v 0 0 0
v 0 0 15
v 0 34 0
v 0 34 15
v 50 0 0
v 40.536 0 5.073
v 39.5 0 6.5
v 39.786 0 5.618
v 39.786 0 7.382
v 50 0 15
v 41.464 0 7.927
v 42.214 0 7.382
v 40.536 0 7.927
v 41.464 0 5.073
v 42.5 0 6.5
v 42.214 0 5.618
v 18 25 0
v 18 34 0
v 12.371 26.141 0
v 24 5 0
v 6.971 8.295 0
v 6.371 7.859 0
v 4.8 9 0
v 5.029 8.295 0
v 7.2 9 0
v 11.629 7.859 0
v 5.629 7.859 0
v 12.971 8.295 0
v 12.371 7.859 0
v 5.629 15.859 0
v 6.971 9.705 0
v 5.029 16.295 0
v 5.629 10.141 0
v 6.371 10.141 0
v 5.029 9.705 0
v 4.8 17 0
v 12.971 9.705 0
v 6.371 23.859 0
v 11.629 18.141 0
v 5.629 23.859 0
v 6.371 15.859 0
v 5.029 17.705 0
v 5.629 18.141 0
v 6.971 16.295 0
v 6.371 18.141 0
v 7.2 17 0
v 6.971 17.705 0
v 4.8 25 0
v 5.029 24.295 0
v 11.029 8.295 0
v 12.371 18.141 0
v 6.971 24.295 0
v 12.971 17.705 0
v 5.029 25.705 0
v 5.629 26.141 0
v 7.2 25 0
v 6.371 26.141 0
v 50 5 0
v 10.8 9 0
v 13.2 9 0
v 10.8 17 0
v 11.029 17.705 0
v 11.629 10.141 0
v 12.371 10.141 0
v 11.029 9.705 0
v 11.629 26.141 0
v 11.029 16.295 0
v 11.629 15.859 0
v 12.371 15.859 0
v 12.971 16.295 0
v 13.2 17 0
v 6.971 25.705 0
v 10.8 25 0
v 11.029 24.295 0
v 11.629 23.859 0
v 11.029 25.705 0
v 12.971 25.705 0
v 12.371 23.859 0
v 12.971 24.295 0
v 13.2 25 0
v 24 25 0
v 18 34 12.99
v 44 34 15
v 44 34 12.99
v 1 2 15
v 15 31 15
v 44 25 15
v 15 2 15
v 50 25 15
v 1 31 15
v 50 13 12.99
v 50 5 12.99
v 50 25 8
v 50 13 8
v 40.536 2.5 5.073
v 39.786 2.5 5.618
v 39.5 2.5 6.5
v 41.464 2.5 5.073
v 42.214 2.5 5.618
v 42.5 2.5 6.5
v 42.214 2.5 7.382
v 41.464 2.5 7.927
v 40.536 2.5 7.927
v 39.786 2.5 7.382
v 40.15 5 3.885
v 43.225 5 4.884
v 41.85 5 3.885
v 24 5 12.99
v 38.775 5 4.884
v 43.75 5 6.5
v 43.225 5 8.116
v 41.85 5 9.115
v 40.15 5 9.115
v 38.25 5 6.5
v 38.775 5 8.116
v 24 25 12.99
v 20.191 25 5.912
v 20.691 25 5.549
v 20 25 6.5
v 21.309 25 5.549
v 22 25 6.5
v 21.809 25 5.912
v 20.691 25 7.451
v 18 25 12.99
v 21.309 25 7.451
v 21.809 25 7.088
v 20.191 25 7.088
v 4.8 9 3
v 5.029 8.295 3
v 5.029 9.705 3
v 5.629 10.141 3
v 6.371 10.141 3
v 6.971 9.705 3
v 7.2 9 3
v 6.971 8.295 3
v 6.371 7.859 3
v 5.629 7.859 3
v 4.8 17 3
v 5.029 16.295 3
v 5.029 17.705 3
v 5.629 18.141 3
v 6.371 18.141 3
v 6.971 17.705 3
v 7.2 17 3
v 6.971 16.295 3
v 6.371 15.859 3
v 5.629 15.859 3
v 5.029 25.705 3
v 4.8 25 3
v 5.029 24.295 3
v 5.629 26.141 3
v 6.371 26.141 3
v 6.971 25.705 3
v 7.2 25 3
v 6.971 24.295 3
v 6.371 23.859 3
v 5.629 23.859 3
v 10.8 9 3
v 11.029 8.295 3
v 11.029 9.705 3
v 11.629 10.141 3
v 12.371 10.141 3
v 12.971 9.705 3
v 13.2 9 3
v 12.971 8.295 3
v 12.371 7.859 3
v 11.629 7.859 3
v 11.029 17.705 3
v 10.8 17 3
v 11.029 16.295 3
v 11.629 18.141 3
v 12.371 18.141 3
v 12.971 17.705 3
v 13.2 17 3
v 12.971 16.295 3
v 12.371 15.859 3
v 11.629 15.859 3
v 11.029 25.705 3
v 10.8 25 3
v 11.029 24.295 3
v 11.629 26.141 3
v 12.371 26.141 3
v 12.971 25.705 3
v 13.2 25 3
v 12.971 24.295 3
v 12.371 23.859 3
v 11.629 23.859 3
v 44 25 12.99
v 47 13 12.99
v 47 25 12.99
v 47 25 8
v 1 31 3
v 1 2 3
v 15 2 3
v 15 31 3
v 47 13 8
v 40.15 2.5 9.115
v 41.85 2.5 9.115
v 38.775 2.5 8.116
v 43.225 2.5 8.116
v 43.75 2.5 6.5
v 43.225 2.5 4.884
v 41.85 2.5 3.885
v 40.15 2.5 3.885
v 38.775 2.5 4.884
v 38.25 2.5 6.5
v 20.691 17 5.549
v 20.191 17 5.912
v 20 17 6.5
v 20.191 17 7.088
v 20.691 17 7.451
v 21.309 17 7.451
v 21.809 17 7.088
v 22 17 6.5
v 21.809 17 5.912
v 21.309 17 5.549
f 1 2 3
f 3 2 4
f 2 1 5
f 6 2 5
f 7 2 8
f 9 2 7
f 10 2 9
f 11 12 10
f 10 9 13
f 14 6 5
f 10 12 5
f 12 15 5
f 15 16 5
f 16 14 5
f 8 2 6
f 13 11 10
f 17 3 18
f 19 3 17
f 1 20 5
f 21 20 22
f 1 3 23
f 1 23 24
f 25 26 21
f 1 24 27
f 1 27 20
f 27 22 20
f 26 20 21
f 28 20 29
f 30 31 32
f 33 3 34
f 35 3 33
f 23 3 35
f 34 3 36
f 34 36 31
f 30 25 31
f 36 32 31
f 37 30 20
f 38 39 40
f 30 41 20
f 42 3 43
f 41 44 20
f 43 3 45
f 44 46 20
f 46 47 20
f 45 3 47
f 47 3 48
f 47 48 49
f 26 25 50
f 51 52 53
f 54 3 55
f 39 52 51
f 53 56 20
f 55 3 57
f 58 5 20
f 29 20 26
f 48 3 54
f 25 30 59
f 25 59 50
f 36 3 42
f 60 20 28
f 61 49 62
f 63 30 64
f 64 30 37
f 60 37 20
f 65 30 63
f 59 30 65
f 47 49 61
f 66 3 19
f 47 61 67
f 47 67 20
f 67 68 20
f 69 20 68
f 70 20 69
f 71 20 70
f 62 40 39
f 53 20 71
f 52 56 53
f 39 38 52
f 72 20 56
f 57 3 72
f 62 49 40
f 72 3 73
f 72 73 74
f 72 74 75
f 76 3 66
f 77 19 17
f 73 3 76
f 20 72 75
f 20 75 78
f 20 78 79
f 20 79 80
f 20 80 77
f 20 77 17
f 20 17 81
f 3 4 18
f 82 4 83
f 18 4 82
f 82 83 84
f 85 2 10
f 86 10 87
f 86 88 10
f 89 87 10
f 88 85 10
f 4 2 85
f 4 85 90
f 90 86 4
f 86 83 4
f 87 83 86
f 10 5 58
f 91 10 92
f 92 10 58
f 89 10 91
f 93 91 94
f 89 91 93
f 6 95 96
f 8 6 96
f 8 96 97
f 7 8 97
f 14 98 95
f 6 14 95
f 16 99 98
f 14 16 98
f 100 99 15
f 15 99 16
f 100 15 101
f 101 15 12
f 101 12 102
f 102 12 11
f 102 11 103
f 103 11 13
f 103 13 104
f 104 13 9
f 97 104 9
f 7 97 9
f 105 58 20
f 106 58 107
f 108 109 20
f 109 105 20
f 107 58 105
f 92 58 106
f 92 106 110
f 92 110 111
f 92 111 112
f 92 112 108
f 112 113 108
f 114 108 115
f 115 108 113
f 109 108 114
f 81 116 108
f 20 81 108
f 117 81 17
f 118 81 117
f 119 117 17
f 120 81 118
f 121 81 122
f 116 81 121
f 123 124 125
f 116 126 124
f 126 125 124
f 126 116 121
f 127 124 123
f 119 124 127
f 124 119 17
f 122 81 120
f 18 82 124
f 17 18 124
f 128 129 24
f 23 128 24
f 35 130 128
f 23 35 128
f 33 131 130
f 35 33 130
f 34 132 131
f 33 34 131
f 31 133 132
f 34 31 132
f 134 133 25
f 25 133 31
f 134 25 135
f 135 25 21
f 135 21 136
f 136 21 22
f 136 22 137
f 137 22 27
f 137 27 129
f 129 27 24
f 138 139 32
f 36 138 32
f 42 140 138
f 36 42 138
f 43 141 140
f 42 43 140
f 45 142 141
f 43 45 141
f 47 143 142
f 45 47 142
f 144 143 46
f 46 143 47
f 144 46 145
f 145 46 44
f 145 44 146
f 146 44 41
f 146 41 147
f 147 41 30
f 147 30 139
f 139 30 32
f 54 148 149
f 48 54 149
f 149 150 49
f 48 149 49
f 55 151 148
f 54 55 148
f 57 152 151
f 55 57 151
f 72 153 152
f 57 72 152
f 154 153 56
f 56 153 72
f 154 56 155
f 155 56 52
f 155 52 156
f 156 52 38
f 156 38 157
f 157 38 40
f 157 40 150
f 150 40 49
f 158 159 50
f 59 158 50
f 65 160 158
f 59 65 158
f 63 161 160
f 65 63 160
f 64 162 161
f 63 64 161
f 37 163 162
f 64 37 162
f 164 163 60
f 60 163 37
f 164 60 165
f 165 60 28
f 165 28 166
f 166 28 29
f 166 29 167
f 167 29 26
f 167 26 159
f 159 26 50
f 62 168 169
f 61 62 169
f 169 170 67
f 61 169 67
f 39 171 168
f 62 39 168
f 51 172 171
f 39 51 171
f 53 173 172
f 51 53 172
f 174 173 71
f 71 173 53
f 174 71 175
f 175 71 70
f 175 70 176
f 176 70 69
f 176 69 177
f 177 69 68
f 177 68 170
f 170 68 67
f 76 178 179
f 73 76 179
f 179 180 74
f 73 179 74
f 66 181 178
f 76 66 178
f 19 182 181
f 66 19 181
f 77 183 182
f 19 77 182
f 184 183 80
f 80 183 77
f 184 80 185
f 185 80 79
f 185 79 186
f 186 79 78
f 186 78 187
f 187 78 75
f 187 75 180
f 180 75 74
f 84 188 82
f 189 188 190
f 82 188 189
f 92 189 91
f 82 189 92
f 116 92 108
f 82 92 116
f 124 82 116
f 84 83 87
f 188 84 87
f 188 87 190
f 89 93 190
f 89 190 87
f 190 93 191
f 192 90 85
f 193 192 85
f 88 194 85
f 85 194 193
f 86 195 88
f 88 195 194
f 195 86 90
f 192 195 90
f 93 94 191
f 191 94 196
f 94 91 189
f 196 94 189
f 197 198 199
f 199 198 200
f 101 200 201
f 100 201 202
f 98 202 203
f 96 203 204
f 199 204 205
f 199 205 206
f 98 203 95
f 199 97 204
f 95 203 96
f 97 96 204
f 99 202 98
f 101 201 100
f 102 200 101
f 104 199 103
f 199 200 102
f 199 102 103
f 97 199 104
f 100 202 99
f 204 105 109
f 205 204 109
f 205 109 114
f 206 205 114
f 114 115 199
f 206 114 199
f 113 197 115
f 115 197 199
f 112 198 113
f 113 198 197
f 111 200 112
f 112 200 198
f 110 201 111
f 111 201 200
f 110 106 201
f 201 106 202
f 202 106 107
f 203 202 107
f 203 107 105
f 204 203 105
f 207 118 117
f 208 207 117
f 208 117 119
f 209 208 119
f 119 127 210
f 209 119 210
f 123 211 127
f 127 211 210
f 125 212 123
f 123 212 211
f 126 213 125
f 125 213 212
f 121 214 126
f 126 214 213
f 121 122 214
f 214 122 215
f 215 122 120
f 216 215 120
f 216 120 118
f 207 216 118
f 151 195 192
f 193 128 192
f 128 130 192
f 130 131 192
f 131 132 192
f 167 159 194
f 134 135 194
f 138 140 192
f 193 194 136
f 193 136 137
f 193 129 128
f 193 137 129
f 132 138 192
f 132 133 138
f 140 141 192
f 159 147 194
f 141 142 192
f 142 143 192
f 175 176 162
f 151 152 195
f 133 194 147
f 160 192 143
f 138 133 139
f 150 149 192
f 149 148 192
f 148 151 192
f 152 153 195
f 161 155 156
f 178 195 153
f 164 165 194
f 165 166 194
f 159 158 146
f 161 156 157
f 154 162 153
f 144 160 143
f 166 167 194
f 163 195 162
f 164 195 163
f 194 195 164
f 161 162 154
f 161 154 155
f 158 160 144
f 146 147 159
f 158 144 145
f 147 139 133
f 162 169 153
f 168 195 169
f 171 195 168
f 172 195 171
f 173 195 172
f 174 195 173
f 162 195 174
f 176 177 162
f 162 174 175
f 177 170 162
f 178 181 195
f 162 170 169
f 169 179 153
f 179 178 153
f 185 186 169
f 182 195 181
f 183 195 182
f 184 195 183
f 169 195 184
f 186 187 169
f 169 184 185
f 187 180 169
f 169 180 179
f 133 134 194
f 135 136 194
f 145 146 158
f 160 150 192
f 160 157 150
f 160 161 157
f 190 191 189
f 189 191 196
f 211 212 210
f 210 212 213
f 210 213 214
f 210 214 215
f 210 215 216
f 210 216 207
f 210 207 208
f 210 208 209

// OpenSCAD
// file: raid3r/raid3r.scad
/*Pequeña biblioteca con las funciones mas comunes*/

module agujereado(X,Y,H){
	union(){
		for(j=[0:X-1])
		{
			translate([0,j*8,0])
			{
				for(i=[0:Y-1])
				{
					translate([i*6,0,-1])cylinder(r=1.2, h=H, $fn=10);
				}
			}
		}
	}
}

module dynahole(H){
	translate([-45.5/2,-10,1])union(){
		translate([3.5+6,16,0])agujereado(4,1,H);
		translate([9.5+26.5,16,0])agujereado(4,1,H);
		translate([45.5/2,10,-1])cylinder(r=11.5,h=H);	
		translate([(45.5-20)/2,6.5,-1])cube([20,36,H]);
		translate([22.5,46,0])union(){
			translate([7,0,-1])cylinder(r=1.5, h=H, $fn=10);
			translate([-7,0,-1])cylinder(r=1.5, h=H, $fn=10);
		}
	}
}

module cruz(H){
	translate([-34,-13,3])union(){
		translate([34,13,-3]) cylinder(r=4,h=H);
		translate([42,13,-3]) cylinder(r=1.5,h=H);
		translate([26,13,-3]) cylinder(r=1.5,h=H);
		translate([34,21,-3]) cylinder(r=1.5,h=H);
		translate([34,5,-3]) cylinder(r=1.5,h=H);
	}
}

module miniservo(H){
	translate([-15,-7,0])union(){
		translate([15,7,0])rotate([0,0,0])cylinder(r=8,h=H);
		translate([-1.75,7,0])union(){
			cylinder(r=1.5, h=H,$fn=20);
			translate([27.5,0,0])cylinder(r=1.5, h=H,$fn=20);
		}
	}
}

module beagleboneHoles(z){
union(){
	translate([0,0,-1])cylinder(r=2,h=z, $fn=8);
	translate([0,46.5,-1])cylinder(r=2,h=z, $fn=8);
	translate([64.5+1.5,2.5,-1])cylinder(r=2,h=z, $fn=8);
	translate([64.5+1.5,44,-1])cylinder(r=2,h=z, $fn=8);
	translate([0,0,-1])cylinder(r=3,h=3, $fn=8);
	translate([0,46.5,-1])cylinder(r=3,h=3, $fn=8);
	translate([64.5+1.5,2.5,-1])cylinder(r=3,h=3, $fn=8);
	translate([64.5+1.5,44,-1])cylinder(r=3,h=3, $fn=8);
	}
}
// main file
use <raid3r/raid3r.scad>


//servo  34+5+5=44
//Ancho externo de la cabeza 44
//Ancho interno de la cabeza 36
//Ancho de la placa de la camara 38


module agujereado(X,Y,H){
	union(){
		for(j=[0:X])
		{
			translate([0,j*8,0])
			{
				for(i=[0:Y])
				{
					translate([i*6,0,-1])cylinder(r=1.2, h=H, $fn=10);
				}
			}
		}
	}
}

offset=5;


rotate([0,0,0])
difference(){
	cube([50,34,15]);
	//translate([24+offset,17,-1])rotate([0,0,90]){
		//translate([16,0,0])agujereado(3,0,20);
		//mirror([1,0,0])translate([16,0,0])agujereado(3,0,20);
	//}
	translate([24,5,-0.01])cube([23,50,13]);
	translate([18,25,-0.01])cube([50,50,13]);
	translate([30,5,-0.01])cube([50,8,13]);
	translate([45,6,-5])cube([50,50,13]);
	translate([44,25,7])cube([50,50,13]);

	translate([21,17,13/2])rotate([-90,0,0])cylinder(r=1,h=20,$fn=10);
	translate([41,-1,13/2])rotate([-90,0,0])cylinder(r=1.5,h=40,$fn=10);
	translate([41,2.5,13/2])rotate([-90,0,0])cylinder(r=5.5/2,h=40,$fn=10);
	translate([1,2,3])rotate([0,0,0])cube([14,29,40]);
translate([6,17-8,-1])agujereado(2,1,90);

}
